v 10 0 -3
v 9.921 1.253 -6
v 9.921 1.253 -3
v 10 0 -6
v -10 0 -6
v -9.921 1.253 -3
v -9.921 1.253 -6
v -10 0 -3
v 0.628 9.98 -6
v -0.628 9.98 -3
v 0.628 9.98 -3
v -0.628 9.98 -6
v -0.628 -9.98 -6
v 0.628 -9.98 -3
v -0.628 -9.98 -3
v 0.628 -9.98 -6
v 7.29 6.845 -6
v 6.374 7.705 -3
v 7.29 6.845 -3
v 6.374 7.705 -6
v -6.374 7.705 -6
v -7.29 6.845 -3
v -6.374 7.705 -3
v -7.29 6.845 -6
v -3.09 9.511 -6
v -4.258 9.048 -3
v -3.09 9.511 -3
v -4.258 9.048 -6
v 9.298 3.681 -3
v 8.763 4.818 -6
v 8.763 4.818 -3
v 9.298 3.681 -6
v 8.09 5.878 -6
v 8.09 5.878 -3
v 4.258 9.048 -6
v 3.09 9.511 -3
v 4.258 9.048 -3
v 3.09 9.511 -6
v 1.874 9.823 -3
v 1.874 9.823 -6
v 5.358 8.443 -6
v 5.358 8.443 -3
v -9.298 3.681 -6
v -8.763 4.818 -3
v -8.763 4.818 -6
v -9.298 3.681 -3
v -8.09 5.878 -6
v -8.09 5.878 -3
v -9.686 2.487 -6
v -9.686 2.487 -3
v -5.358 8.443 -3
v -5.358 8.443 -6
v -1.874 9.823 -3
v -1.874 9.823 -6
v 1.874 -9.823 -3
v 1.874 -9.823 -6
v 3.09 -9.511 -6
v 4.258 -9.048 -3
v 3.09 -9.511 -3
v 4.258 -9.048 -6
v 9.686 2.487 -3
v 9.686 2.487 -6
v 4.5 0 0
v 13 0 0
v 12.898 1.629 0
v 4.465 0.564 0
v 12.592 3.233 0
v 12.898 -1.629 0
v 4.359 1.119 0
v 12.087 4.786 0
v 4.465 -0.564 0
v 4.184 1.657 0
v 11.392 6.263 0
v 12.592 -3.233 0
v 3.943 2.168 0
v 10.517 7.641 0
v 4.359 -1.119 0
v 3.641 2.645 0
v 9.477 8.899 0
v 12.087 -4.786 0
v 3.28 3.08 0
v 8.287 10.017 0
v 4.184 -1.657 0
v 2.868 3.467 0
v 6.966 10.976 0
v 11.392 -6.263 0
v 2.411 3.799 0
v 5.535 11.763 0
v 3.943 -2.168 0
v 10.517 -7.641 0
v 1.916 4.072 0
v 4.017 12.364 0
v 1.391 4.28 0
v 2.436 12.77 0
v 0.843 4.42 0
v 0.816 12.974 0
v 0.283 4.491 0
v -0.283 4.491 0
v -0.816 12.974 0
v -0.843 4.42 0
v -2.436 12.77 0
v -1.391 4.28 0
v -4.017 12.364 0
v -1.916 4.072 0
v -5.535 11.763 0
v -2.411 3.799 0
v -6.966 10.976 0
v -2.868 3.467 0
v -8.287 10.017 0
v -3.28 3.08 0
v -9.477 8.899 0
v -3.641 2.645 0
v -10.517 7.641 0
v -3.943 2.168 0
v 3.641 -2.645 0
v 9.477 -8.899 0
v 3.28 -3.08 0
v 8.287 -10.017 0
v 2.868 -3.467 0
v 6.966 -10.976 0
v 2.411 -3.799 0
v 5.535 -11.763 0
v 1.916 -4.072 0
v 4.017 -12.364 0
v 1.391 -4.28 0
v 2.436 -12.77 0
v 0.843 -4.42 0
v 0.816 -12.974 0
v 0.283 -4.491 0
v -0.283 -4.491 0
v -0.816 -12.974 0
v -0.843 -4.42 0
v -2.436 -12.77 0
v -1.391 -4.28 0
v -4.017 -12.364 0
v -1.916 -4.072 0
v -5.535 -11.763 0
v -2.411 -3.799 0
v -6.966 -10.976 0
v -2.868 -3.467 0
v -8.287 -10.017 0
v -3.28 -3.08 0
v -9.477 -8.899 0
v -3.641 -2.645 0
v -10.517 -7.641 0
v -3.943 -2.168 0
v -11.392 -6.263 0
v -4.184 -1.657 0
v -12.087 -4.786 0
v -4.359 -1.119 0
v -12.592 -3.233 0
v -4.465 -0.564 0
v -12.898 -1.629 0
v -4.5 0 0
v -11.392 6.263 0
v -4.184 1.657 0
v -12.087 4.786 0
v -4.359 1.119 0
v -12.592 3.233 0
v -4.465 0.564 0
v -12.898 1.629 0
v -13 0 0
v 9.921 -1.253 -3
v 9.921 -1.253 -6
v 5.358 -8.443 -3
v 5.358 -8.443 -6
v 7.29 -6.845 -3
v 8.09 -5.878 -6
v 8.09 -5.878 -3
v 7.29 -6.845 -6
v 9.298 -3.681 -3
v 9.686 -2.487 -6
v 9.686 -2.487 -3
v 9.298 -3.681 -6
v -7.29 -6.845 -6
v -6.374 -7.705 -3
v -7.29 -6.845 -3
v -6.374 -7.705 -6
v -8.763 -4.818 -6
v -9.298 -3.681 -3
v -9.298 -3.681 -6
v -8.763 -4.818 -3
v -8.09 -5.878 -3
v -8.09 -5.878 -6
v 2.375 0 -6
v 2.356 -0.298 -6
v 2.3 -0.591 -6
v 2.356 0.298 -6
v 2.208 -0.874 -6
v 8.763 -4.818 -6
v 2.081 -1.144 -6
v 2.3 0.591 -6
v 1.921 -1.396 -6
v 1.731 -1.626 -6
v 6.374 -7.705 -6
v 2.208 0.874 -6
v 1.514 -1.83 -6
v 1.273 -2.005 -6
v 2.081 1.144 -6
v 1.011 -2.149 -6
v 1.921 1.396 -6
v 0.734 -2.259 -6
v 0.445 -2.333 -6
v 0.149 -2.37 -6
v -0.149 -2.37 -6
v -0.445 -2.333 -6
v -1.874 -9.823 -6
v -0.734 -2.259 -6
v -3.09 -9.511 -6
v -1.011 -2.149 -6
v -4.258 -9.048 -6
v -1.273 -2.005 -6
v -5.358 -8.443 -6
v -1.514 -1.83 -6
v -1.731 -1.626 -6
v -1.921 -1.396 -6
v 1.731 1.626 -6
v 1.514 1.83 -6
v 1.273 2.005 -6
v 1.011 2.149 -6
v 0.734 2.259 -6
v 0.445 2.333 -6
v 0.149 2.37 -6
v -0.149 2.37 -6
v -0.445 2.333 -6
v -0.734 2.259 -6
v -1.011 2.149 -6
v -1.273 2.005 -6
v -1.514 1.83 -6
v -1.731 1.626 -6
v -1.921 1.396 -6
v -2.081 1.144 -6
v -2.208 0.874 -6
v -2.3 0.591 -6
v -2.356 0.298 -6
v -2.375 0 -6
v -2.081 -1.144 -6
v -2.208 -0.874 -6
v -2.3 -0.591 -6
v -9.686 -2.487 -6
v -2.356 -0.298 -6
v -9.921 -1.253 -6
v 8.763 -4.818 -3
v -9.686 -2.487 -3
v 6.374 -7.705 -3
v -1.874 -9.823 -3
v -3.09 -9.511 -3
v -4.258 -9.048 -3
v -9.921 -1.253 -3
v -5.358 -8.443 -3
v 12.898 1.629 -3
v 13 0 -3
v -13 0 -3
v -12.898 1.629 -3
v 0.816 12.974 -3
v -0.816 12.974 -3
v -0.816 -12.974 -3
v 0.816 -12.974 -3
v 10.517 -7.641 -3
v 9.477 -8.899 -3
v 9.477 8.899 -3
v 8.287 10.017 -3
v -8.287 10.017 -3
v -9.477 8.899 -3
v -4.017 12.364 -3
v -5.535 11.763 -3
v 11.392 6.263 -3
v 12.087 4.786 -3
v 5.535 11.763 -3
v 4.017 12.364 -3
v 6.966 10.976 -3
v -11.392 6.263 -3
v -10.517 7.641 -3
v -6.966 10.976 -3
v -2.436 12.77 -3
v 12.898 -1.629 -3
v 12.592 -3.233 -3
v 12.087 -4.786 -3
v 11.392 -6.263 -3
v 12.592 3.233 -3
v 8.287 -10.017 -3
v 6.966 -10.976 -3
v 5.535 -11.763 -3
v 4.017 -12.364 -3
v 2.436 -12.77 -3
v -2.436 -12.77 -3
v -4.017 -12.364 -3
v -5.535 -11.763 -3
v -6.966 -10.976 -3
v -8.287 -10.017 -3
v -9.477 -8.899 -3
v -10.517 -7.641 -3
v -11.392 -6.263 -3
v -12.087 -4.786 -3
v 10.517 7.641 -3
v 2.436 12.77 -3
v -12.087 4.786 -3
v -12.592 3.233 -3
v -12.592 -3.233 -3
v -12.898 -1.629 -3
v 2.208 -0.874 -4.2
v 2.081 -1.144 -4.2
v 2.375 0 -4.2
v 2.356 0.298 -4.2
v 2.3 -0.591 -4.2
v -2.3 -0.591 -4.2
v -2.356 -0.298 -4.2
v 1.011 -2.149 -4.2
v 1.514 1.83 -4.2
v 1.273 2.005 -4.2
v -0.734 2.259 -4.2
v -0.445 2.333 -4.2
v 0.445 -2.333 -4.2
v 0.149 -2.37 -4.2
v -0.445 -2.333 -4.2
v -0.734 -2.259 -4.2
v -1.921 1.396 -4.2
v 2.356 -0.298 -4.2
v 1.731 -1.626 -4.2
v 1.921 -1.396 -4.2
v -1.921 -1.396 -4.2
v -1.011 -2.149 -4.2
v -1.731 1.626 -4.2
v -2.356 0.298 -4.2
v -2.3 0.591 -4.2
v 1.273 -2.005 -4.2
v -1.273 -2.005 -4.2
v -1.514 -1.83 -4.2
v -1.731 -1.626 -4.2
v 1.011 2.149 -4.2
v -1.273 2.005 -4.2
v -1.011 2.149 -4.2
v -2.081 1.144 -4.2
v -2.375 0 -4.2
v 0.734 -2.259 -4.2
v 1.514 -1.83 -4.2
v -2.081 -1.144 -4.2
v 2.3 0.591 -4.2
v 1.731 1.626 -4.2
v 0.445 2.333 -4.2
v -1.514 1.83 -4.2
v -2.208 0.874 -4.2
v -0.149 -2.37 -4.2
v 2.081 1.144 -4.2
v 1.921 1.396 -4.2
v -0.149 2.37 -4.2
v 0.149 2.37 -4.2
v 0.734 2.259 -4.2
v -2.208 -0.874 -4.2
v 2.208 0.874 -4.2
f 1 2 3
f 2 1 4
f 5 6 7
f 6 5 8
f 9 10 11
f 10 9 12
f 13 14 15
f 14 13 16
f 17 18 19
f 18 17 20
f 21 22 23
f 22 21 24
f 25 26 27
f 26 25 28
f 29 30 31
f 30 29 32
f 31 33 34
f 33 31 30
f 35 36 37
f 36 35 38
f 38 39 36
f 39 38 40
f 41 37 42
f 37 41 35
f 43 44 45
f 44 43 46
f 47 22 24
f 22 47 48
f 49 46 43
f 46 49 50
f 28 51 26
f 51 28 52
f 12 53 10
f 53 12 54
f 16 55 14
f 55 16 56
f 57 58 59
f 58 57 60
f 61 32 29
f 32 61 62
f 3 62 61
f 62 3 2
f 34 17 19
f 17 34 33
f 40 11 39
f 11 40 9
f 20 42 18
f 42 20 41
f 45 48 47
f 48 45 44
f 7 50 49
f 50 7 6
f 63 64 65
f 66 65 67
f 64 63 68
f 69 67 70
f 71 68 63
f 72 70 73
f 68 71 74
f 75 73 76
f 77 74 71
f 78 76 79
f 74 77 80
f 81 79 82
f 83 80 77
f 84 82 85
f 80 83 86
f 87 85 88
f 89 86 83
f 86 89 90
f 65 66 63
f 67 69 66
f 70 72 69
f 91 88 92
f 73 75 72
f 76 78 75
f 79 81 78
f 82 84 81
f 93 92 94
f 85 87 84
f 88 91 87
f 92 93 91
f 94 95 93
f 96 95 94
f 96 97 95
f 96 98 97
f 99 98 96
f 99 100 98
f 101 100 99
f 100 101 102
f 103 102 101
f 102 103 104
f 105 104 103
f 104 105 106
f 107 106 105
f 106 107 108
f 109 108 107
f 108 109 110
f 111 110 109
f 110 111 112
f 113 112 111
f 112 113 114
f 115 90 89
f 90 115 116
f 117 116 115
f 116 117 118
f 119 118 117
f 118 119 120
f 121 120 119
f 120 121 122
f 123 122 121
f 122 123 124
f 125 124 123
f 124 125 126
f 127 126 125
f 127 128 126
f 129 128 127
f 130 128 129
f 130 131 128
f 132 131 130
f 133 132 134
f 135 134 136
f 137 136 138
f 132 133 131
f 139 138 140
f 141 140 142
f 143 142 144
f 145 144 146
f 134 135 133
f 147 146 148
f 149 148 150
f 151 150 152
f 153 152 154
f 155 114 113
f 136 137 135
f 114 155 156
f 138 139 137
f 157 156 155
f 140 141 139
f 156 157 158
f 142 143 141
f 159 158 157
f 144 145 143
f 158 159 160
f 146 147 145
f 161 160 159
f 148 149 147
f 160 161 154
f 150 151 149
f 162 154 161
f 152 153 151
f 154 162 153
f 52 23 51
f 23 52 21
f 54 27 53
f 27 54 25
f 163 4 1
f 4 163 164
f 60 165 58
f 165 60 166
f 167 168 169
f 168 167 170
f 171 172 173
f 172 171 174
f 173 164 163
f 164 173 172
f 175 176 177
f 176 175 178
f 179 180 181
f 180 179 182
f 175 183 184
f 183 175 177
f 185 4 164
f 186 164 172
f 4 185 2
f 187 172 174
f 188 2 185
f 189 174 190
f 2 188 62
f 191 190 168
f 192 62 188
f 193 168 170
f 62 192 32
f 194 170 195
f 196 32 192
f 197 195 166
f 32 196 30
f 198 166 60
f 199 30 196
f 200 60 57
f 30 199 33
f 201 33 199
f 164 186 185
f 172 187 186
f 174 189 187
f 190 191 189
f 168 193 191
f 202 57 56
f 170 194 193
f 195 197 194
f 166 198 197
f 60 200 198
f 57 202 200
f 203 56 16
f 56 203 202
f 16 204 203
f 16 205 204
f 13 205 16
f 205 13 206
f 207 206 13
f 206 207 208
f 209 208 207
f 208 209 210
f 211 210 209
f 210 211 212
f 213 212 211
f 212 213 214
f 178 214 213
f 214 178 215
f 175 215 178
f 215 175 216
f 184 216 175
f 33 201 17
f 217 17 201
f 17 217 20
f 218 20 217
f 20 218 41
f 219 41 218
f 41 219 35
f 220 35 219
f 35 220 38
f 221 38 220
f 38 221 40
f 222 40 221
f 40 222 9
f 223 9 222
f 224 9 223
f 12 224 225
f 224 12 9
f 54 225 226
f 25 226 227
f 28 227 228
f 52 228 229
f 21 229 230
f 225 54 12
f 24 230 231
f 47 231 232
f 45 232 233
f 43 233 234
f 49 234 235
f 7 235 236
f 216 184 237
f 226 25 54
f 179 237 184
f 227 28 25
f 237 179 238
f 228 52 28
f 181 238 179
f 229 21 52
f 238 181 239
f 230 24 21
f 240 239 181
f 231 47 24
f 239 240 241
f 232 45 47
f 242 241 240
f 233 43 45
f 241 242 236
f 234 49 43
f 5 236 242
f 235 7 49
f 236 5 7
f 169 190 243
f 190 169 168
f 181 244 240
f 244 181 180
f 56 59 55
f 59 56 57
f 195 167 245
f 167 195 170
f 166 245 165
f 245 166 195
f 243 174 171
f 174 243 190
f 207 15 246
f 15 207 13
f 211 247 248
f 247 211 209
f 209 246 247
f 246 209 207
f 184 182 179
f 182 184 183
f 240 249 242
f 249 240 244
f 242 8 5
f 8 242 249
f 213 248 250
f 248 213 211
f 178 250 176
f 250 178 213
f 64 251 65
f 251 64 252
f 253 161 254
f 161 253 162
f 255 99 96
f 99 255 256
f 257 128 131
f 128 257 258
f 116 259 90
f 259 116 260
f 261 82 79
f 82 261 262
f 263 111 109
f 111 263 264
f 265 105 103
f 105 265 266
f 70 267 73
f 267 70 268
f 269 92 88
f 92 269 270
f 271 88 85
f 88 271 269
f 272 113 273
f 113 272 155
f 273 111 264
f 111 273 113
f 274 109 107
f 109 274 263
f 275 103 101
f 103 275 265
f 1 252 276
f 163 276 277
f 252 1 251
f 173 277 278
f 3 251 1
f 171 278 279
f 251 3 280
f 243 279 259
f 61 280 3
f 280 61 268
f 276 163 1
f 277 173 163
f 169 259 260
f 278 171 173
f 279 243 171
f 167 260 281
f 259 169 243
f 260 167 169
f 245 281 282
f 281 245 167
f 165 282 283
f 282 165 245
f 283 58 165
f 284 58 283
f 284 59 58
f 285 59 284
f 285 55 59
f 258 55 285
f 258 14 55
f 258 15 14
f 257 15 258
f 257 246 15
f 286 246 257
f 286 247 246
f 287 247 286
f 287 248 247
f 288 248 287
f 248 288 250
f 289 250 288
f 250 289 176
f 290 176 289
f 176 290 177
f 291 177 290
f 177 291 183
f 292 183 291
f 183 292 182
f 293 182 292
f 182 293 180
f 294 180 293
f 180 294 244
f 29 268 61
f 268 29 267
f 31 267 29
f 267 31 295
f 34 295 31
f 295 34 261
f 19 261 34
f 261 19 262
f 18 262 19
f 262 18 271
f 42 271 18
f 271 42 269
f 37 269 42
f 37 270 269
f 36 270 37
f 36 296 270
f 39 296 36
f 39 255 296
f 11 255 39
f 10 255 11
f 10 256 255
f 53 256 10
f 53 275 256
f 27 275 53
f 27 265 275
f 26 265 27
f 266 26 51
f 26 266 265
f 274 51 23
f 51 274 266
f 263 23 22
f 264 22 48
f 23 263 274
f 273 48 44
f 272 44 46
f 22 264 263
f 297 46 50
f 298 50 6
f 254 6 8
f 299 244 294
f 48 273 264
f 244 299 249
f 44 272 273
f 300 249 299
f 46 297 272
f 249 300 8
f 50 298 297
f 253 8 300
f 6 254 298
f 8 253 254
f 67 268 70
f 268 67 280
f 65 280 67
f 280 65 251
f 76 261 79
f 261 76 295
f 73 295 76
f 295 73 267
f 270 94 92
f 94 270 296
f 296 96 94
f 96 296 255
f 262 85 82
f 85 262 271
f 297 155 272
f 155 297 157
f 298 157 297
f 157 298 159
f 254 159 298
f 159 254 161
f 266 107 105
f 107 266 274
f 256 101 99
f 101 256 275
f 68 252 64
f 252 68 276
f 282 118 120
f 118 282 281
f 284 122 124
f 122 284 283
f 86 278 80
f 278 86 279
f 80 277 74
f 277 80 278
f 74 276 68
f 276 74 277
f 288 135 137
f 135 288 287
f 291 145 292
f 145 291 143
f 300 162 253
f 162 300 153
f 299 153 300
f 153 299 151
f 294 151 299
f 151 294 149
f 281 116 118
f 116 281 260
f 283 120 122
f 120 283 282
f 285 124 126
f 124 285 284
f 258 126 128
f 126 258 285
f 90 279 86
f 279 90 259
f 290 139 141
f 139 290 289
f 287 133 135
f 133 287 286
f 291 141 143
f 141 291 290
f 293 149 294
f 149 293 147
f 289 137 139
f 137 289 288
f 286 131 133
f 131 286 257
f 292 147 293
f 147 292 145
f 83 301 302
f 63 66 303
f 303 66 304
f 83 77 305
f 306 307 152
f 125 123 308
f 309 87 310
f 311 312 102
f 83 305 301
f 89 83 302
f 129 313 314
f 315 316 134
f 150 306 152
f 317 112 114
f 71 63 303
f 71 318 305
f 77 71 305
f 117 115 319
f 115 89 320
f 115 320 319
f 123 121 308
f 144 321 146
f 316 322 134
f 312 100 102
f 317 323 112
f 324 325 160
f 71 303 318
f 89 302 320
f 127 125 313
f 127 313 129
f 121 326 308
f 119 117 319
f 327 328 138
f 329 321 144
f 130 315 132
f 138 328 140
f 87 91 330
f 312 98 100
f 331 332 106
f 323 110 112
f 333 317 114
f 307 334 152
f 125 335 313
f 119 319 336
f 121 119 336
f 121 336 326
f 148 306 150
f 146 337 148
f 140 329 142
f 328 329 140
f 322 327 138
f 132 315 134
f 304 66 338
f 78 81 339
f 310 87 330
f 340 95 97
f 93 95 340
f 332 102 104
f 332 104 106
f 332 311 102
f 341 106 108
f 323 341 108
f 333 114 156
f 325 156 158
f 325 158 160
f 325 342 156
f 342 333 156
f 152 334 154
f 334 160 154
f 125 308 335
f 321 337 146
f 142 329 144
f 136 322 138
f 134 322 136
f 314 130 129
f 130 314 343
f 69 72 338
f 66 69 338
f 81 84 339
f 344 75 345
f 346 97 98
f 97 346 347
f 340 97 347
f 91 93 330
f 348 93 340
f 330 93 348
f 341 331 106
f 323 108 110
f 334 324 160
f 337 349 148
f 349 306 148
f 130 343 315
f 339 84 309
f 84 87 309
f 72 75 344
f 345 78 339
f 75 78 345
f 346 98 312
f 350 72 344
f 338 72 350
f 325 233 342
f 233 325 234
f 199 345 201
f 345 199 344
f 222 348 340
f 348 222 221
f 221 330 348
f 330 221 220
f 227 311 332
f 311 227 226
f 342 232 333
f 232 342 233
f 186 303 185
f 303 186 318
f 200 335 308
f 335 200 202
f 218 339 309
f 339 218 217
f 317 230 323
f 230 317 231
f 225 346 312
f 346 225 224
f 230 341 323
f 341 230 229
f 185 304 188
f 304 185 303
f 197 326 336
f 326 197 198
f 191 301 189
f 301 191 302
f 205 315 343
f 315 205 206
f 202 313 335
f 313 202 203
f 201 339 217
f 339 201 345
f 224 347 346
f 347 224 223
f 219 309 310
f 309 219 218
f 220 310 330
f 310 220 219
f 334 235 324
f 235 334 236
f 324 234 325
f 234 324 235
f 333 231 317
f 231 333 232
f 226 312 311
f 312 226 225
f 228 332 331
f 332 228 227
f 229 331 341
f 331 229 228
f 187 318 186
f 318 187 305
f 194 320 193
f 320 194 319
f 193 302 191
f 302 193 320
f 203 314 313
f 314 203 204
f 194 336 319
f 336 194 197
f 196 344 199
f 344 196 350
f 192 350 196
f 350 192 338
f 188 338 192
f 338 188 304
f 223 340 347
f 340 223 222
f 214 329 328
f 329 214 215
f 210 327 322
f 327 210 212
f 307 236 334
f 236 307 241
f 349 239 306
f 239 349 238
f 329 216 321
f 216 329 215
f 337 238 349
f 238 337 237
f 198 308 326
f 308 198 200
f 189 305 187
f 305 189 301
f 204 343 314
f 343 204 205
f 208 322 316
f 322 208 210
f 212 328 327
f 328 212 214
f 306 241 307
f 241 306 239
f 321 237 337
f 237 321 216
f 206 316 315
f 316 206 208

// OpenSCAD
$fn = 50;


difference() {
	union() {
		translate(v = [0, 0, -6.0000000000]) {
			cylinder(h = 6, r = 10.0000000000);
		}
		translate(v = [0, 0, -3.0000000000]) {
			cylinder(h = 3, r = 13.0000000000);
		}
	}
	union() {
		translate(v = [0, 0, 0]) {
			rotate(a = [0, 0, 0]) {
				difference() {
					union() {
						#translate(v = [0, 0, -6.0000000000]) {
							cylinder(h = 6, r = 2.2500000000);
						}
						#translate(v = [0, 0, -4.2000000000]) {
							cylinder(h = 4.2000000000, r = 10.0000000000, r1 = 2.3750000000, r2 = 4.5000000000);
						}
						#translate(v = [0, 0, -6.0000000000]) {
							cylinder(h = 6, r = 2.3750000000);
						}
						#translate(v = [0, 0, -6.0000000000]) {
							cylinder(h = 6, r = 2.2500000000);
						}
					}
					union();
				}
			}
		}
	}
}
